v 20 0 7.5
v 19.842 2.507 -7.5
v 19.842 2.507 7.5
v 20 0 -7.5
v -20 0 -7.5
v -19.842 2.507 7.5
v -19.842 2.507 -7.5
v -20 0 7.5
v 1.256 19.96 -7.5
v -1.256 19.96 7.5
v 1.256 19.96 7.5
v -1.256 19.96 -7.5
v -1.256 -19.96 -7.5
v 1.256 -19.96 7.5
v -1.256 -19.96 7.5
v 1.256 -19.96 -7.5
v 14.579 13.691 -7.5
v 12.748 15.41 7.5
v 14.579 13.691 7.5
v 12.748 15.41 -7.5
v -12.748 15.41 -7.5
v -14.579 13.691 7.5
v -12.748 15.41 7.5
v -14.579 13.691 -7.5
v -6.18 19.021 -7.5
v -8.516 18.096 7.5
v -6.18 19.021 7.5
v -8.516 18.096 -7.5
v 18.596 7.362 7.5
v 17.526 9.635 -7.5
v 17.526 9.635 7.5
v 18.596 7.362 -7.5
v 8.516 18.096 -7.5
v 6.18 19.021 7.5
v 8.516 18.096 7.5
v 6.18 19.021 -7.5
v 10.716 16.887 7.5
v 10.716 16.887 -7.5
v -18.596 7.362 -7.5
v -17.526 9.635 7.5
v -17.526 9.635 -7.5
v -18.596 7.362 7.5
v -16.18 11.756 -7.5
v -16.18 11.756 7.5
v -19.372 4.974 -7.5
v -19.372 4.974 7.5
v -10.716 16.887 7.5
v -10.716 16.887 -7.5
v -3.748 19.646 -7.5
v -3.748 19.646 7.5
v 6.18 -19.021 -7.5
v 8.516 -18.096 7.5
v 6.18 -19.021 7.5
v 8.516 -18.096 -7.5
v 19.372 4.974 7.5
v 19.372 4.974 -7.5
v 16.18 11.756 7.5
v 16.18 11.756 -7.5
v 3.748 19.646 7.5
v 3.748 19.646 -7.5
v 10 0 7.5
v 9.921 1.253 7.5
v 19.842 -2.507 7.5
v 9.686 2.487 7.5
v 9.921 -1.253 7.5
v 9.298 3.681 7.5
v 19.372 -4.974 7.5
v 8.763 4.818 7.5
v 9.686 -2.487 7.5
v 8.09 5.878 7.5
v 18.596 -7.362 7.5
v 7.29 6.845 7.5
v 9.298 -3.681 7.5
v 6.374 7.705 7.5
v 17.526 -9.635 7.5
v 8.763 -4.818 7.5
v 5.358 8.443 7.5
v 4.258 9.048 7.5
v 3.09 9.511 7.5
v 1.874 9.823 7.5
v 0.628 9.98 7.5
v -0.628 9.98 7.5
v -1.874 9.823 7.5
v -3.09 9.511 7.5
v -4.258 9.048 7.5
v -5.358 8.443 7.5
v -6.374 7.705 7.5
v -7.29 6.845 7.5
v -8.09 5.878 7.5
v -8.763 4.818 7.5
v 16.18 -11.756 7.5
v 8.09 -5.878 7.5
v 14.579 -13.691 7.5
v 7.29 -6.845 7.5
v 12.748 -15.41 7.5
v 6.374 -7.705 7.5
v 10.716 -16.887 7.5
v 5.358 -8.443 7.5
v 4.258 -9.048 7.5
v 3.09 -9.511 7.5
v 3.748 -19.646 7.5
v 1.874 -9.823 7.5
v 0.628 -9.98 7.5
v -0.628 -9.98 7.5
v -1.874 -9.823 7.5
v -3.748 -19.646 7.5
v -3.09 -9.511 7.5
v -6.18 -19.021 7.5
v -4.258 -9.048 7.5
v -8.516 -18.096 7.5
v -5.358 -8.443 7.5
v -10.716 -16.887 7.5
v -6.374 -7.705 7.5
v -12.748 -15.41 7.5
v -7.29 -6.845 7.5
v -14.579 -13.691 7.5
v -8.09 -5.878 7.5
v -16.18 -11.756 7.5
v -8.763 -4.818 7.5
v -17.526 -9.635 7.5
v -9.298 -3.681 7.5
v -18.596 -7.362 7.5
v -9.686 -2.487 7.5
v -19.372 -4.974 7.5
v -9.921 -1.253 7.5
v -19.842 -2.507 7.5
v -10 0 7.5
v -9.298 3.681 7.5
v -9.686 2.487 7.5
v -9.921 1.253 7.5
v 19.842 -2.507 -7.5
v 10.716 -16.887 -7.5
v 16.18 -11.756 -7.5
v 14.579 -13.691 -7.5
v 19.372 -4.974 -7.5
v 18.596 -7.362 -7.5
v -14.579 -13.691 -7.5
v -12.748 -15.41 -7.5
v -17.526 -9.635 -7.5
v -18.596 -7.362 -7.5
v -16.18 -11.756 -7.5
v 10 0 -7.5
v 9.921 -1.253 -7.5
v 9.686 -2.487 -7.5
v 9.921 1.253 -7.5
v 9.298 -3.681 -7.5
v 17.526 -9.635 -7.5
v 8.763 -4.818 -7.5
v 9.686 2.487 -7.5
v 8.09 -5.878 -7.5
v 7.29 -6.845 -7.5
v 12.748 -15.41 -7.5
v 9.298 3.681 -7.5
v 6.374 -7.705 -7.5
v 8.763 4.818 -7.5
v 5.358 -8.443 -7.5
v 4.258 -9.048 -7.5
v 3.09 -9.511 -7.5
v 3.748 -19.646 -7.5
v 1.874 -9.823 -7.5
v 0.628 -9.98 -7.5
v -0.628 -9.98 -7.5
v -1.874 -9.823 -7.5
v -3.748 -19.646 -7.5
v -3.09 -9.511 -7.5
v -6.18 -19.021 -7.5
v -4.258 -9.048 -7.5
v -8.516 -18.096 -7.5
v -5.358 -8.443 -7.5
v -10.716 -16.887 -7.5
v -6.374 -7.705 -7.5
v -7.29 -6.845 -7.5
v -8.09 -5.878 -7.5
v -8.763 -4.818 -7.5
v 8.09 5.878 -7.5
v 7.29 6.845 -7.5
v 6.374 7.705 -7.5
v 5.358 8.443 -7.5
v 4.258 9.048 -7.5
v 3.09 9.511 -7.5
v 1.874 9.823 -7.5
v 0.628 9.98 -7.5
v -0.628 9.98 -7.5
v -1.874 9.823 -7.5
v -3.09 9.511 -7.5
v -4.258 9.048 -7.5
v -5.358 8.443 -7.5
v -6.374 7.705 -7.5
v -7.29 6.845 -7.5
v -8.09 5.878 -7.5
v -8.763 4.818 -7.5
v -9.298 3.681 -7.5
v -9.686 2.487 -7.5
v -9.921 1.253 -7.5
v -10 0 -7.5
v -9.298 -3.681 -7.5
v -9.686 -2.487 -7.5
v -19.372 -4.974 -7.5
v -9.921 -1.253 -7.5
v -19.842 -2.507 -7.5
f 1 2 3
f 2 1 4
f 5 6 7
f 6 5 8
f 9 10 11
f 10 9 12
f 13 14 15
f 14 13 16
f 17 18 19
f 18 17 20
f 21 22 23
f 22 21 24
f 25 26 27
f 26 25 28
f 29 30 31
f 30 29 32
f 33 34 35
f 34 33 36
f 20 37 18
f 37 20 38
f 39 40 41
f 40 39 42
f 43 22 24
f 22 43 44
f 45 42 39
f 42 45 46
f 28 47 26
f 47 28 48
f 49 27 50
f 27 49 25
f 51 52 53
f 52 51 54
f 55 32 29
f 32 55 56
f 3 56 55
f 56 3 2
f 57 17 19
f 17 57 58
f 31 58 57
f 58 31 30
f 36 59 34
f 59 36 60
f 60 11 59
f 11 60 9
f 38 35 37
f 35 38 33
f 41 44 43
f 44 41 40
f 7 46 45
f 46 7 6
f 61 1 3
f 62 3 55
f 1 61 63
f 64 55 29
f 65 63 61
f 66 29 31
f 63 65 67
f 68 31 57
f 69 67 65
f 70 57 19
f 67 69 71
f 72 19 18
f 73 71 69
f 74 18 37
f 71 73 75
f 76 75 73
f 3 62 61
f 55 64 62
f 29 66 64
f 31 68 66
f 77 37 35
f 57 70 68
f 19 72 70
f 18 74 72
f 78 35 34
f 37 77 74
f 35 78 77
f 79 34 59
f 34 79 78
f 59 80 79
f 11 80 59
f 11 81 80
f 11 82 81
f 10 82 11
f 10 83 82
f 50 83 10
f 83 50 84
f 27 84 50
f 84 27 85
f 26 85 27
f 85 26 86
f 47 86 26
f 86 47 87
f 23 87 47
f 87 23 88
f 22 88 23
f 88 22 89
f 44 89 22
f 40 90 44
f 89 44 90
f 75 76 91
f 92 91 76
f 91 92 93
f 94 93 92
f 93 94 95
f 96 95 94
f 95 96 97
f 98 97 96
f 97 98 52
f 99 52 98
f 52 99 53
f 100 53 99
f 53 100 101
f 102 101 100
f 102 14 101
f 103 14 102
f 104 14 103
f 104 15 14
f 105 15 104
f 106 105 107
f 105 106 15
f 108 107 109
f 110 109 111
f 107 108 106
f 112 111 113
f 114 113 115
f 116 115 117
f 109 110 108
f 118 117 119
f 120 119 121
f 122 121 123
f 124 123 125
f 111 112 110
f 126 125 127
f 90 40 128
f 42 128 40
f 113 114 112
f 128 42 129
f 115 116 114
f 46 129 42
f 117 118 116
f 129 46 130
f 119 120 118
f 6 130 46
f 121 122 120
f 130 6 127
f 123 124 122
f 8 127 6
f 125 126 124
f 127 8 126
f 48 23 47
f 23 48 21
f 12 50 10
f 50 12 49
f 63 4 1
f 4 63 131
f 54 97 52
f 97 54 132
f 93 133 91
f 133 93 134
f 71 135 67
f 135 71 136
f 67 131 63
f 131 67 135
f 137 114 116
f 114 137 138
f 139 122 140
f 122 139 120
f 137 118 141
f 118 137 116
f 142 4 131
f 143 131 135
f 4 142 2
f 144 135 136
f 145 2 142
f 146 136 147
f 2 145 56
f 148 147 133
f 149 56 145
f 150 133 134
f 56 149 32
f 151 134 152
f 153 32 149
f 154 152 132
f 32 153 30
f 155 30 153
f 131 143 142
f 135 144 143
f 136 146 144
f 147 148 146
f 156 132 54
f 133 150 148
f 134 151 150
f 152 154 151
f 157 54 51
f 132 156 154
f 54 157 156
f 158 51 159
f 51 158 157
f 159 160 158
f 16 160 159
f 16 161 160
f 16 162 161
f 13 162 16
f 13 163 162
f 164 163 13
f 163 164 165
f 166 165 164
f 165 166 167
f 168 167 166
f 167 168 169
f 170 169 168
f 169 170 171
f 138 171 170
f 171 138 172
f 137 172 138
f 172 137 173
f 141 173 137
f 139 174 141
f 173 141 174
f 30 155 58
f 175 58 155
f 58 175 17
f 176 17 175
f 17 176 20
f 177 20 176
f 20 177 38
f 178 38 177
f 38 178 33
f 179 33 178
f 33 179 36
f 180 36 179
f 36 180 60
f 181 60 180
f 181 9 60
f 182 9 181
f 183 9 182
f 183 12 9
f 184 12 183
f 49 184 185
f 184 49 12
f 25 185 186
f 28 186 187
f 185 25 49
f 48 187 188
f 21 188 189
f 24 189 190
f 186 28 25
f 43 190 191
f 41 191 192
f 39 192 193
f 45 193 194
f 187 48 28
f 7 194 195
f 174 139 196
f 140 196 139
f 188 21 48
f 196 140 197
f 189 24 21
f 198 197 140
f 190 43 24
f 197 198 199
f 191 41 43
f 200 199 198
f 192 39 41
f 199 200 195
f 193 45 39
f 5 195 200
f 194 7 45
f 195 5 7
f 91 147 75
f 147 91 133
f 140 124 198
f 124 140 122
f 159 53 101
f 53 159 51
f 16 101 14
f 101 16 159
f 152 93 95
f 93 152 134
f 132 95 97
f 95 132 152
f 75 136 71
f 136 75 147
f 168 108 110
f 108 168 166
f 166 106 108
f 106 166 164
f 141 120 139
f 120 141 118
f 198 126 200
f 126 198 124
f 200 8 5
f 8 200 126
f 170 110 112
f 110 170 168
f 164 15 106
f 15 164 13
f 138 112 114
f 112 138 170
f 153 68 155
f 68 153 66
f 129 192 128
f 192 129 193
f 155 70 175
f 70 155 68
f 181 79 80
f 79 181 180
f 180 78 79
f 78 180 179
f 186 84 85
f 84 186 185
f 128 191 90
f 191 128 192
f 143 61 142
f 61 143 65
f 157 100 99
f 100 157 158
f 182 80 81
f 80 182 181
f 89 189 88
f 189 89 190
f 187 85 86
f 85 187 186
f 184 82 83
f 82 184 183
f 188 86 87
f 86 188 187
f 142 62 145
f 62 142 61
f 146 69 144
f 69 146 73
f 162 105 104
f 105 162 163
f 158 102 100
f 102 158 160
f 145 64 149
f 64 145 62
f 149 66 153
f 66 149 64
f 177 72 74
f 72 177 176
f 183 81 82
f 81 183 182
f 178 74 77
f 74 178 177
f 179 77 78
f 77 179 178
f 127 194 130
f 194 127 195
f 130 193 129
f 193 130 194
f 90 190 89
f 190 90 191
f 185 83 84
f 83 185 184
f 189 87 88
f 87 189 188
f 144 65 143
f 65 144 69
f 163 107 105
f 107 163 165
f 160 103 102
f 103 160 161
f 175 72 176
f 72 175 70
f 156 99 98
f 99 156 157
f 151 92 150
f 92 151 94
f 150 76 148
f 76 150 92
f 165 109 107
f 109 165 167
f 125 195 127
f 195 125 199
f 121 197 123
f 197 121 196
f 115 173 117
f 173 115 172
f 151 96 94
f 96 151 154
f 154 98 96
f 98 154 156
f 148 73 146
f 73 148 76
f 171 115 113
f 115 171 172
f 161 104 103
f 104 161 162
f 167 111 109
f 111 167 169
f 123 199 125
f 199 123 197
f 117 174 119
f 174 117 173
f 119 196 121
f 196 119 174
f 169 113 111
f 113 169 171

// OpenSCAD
$fn = 50;


difference() {
	union() {
		translate(v = [0, 0, -7.5000000000]) {
			cylinder(h = 15, r = 20.0000000000);
		}
	}
	union() {
		translate(v = [0, 0, -100.0000000000]) {
			cylinder(h = 200, r = 10);
		}
	}
}
